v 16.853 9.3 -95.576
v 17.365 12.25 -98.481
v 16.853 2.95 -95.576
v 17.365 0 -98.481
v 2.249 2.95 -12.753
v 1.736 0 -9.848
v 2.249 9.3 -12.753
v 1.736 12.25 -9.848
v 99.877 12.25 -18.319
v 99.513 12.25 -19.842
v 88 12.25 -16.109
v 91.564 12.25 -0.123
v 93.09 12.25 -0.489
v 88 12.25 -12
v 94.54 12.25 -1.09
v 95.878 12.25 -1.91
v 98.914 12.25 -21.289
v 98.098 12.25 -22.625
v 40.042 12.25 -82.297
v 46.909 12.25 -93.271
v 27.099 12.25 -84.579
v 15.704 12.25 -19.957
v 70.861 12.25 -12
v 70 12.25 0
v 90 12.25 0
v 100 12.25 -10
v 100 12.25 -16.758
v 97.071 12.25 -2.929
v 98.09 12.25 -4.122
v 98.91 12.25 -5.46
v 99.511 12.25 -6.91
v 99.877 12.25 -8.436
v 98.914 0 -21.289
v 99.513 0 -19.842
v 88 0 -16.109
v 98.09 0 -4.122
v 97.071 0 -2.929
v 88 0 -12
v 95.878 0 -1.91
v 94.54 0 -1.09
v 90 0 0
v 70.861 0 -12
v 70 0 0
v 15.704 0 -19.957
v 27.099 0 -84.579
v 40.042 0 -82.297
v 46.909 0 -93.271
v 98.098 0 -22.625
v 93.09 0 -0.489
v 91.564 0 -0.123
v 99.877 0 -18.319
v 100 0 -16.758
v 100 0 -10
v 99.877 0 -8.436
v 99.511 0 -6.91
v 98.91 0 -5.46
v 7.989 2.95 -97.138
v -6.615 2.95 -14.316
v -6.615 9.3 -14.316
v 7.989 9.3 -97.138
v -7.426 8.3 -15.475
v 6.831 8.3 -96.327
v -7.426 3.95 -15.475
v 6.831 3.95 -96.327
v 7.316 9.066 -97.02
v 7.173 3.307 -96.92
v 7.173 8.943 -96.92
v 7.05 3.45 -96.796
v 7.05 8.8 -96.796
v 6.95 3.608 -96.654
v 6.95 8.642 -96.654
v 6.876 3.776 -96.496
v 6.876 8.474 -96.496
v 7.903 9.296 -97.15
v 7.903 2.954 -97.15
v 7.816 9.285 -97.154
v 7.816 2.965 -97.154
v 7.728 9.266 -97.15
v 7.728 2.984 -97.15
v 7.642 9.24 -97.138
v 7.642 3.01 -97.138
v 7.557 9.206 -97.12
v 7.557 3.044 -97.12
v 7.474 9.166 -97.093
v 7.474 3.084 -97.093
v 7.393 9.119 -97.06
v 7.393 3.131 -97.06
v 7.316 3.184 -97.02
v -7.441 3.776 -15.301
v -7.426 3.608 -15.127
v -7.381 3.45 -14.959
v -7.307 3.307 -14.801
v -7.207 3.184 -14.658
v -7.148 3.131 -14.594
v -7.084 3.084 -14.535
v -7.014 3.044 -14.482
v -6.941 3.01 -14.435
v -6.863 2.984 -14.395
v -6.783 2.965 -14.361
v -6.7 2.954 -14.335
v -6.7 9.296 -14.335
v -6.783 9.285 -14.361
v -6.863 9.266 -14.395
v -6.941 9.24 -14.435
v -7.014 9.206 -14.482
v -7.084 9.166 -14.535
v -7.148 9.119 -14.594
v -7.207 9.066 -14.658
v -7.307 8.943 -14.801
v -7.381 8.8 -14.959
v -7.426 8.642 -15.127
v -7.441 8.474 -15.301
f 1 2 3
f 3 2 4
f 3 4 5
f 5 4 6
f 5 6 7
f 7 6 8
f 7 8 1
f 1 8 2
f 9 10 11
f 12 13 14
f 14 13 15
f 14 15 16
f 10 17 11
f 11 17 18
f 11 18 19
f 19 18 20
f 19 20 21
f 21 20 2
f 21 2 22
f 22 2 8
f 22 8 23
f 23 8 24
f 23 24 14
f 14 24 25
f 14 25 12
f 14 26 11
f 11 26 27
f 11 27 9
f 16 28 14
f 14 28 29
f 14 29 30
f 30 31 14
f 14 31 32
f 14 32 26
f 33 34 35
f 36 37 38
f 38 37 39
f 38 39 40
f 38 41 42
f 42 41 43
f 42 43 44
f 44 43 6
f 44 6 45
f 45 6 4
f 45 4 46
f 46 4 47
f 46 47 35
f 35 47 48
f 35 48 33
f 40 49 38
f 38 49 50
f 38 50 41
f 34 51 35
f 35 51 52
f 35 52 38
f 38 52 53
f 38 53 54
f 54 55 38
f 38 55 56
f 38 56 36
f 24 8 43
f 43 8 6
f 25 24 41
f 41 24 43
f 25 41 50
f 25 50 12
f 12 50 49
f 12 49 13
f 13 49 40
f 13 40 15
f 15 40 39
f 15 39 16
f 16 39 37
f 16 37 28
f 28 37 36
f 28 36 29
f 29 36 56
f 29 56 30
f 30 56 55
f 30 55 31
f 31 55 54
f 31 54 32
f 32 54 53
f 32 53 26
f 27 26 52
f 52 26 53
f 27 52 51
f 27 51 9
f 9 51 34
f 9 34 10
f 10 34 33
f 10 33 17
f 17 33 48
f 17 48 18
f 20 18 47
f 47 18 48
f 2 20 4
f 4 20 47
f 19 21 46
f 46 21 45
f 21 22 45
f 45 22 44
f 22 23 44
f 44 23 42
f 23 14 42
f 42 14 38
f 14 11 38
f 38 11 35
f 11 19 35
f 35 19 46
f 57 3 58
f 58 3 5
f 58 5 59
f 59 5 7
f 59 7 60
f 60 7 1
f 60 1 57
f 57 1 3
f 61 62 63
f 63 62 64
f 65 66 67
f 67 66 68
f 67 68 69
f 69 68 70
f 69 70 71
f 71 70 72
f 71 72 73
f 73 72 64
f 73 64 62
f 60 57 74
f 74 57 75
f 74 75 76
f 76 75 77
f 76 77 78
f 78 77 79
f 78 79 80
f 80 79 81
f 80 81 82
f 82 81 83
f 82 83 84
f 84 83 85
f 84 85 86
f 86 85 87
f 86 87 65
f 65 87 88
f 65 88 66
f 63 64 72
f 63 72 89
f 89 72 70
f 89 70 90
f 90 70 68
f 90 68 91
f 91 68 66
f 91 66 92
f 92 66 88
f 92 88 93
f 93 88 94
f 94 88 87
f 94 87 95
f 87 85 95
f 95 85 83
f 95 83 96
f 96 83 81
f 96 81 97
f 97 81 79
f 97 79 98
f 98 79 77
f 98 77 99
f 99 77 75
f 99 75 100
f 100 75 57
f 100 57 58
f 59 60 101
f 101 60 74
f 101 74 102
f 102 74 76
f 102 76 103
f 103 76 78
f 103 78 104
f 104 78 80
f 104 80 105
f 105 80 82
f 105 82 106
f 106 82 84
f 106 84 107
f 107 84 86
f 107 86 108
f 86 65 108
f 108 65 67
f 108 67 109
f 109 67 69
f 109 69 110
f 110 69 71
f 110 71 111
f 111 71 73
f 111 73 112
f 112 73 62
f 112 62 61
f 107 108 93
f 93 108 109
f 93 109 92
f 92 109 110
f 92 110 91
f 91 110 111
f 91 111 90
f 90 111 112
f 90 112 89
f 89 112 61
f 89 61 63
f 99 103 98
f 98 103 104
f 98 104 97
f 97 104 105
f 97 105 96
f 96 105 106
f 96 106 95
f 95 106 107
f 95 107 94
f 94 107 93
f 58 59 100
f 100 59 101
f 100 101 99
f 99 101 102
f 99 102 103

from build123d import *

# Parameters (mm, degrees)
BOSS_EXTRUDE1_DEPTH = 12.25
SKETCH2_W           = 84.1
SKETCH2_H           = 6.35
BOSS_EXTRUDE2_DEPTH = 10
FILLET1_R           = 1


with BuildPart() as part:
    # Sketch1 → Boss-Extrude1 (new body)
    with BuildSketch(Plane(origin=(0, 0, 0), x_dir=(1, 0, 0), z_dir=(0, 1, 0))):
        with BuildLine():
            Line((17.364817767, 98.480775301), (46.909050357, 93.271329971))
            Line((46.909050357, 93.271329971), (98.097719862, 22.625355106))
            ThreePointArc((98.097719862, 22.625355106), (99.512549569, 19.841964096), (100, 16.757908213))
            Line((100, 16.757908213), (100, 10))
            ThreePointArc((100, 10), (97.071067812, 2.928932188), (90, 0))
            Line((90, 0), (70, 0))
            Line((70, 0), (1.736481777, 9.84807753))
            Line((1.736481777, 9.84807753), (17.364817767, 98.480775301))
        make_face()
        Polygon((40.041775538, 82.297096463), (88, 16.109489855), (88, 12), (70.861136072, 12), (15.704122693, 19.957259723), (27.098732671, 84.579304133), align=None, mode=Mode.SUBTRACT)
    extrude(amount=BOSS_EXTRUDE1_DEPTH)

    # Sketch2 → Boss-Extrude2 (add)
    with BuildSketch(Plane(origin=(0, 0, 0), x_dir=(-0.17364817766692336, 0, 0.9848077530122094), z_dir=(-0.9848077530122092, 0, -0.17364817766692334))):
        with Locations((-55, 6.125)):
            Rectangle(SKETCH2_W, SKETCH2_H)
    extrude(amount=BOSS_EXTRUDE2_DEPTH)

    # Fillet1
    fillet1_edges = [part.edges().sort_by_distance(p)[0] for p in [
        (-0.297427758, 2.95, -55.900908192),
        (-7.599333629, 6.125, -14.489742178),
        (-0.297427758, 9.3, -55.900908192),
        (7.004478112, 6.125, -97.312074207),
    ]]
    fillet(fillet1_edges, radius=FILLET1_R)


solid = part.part
